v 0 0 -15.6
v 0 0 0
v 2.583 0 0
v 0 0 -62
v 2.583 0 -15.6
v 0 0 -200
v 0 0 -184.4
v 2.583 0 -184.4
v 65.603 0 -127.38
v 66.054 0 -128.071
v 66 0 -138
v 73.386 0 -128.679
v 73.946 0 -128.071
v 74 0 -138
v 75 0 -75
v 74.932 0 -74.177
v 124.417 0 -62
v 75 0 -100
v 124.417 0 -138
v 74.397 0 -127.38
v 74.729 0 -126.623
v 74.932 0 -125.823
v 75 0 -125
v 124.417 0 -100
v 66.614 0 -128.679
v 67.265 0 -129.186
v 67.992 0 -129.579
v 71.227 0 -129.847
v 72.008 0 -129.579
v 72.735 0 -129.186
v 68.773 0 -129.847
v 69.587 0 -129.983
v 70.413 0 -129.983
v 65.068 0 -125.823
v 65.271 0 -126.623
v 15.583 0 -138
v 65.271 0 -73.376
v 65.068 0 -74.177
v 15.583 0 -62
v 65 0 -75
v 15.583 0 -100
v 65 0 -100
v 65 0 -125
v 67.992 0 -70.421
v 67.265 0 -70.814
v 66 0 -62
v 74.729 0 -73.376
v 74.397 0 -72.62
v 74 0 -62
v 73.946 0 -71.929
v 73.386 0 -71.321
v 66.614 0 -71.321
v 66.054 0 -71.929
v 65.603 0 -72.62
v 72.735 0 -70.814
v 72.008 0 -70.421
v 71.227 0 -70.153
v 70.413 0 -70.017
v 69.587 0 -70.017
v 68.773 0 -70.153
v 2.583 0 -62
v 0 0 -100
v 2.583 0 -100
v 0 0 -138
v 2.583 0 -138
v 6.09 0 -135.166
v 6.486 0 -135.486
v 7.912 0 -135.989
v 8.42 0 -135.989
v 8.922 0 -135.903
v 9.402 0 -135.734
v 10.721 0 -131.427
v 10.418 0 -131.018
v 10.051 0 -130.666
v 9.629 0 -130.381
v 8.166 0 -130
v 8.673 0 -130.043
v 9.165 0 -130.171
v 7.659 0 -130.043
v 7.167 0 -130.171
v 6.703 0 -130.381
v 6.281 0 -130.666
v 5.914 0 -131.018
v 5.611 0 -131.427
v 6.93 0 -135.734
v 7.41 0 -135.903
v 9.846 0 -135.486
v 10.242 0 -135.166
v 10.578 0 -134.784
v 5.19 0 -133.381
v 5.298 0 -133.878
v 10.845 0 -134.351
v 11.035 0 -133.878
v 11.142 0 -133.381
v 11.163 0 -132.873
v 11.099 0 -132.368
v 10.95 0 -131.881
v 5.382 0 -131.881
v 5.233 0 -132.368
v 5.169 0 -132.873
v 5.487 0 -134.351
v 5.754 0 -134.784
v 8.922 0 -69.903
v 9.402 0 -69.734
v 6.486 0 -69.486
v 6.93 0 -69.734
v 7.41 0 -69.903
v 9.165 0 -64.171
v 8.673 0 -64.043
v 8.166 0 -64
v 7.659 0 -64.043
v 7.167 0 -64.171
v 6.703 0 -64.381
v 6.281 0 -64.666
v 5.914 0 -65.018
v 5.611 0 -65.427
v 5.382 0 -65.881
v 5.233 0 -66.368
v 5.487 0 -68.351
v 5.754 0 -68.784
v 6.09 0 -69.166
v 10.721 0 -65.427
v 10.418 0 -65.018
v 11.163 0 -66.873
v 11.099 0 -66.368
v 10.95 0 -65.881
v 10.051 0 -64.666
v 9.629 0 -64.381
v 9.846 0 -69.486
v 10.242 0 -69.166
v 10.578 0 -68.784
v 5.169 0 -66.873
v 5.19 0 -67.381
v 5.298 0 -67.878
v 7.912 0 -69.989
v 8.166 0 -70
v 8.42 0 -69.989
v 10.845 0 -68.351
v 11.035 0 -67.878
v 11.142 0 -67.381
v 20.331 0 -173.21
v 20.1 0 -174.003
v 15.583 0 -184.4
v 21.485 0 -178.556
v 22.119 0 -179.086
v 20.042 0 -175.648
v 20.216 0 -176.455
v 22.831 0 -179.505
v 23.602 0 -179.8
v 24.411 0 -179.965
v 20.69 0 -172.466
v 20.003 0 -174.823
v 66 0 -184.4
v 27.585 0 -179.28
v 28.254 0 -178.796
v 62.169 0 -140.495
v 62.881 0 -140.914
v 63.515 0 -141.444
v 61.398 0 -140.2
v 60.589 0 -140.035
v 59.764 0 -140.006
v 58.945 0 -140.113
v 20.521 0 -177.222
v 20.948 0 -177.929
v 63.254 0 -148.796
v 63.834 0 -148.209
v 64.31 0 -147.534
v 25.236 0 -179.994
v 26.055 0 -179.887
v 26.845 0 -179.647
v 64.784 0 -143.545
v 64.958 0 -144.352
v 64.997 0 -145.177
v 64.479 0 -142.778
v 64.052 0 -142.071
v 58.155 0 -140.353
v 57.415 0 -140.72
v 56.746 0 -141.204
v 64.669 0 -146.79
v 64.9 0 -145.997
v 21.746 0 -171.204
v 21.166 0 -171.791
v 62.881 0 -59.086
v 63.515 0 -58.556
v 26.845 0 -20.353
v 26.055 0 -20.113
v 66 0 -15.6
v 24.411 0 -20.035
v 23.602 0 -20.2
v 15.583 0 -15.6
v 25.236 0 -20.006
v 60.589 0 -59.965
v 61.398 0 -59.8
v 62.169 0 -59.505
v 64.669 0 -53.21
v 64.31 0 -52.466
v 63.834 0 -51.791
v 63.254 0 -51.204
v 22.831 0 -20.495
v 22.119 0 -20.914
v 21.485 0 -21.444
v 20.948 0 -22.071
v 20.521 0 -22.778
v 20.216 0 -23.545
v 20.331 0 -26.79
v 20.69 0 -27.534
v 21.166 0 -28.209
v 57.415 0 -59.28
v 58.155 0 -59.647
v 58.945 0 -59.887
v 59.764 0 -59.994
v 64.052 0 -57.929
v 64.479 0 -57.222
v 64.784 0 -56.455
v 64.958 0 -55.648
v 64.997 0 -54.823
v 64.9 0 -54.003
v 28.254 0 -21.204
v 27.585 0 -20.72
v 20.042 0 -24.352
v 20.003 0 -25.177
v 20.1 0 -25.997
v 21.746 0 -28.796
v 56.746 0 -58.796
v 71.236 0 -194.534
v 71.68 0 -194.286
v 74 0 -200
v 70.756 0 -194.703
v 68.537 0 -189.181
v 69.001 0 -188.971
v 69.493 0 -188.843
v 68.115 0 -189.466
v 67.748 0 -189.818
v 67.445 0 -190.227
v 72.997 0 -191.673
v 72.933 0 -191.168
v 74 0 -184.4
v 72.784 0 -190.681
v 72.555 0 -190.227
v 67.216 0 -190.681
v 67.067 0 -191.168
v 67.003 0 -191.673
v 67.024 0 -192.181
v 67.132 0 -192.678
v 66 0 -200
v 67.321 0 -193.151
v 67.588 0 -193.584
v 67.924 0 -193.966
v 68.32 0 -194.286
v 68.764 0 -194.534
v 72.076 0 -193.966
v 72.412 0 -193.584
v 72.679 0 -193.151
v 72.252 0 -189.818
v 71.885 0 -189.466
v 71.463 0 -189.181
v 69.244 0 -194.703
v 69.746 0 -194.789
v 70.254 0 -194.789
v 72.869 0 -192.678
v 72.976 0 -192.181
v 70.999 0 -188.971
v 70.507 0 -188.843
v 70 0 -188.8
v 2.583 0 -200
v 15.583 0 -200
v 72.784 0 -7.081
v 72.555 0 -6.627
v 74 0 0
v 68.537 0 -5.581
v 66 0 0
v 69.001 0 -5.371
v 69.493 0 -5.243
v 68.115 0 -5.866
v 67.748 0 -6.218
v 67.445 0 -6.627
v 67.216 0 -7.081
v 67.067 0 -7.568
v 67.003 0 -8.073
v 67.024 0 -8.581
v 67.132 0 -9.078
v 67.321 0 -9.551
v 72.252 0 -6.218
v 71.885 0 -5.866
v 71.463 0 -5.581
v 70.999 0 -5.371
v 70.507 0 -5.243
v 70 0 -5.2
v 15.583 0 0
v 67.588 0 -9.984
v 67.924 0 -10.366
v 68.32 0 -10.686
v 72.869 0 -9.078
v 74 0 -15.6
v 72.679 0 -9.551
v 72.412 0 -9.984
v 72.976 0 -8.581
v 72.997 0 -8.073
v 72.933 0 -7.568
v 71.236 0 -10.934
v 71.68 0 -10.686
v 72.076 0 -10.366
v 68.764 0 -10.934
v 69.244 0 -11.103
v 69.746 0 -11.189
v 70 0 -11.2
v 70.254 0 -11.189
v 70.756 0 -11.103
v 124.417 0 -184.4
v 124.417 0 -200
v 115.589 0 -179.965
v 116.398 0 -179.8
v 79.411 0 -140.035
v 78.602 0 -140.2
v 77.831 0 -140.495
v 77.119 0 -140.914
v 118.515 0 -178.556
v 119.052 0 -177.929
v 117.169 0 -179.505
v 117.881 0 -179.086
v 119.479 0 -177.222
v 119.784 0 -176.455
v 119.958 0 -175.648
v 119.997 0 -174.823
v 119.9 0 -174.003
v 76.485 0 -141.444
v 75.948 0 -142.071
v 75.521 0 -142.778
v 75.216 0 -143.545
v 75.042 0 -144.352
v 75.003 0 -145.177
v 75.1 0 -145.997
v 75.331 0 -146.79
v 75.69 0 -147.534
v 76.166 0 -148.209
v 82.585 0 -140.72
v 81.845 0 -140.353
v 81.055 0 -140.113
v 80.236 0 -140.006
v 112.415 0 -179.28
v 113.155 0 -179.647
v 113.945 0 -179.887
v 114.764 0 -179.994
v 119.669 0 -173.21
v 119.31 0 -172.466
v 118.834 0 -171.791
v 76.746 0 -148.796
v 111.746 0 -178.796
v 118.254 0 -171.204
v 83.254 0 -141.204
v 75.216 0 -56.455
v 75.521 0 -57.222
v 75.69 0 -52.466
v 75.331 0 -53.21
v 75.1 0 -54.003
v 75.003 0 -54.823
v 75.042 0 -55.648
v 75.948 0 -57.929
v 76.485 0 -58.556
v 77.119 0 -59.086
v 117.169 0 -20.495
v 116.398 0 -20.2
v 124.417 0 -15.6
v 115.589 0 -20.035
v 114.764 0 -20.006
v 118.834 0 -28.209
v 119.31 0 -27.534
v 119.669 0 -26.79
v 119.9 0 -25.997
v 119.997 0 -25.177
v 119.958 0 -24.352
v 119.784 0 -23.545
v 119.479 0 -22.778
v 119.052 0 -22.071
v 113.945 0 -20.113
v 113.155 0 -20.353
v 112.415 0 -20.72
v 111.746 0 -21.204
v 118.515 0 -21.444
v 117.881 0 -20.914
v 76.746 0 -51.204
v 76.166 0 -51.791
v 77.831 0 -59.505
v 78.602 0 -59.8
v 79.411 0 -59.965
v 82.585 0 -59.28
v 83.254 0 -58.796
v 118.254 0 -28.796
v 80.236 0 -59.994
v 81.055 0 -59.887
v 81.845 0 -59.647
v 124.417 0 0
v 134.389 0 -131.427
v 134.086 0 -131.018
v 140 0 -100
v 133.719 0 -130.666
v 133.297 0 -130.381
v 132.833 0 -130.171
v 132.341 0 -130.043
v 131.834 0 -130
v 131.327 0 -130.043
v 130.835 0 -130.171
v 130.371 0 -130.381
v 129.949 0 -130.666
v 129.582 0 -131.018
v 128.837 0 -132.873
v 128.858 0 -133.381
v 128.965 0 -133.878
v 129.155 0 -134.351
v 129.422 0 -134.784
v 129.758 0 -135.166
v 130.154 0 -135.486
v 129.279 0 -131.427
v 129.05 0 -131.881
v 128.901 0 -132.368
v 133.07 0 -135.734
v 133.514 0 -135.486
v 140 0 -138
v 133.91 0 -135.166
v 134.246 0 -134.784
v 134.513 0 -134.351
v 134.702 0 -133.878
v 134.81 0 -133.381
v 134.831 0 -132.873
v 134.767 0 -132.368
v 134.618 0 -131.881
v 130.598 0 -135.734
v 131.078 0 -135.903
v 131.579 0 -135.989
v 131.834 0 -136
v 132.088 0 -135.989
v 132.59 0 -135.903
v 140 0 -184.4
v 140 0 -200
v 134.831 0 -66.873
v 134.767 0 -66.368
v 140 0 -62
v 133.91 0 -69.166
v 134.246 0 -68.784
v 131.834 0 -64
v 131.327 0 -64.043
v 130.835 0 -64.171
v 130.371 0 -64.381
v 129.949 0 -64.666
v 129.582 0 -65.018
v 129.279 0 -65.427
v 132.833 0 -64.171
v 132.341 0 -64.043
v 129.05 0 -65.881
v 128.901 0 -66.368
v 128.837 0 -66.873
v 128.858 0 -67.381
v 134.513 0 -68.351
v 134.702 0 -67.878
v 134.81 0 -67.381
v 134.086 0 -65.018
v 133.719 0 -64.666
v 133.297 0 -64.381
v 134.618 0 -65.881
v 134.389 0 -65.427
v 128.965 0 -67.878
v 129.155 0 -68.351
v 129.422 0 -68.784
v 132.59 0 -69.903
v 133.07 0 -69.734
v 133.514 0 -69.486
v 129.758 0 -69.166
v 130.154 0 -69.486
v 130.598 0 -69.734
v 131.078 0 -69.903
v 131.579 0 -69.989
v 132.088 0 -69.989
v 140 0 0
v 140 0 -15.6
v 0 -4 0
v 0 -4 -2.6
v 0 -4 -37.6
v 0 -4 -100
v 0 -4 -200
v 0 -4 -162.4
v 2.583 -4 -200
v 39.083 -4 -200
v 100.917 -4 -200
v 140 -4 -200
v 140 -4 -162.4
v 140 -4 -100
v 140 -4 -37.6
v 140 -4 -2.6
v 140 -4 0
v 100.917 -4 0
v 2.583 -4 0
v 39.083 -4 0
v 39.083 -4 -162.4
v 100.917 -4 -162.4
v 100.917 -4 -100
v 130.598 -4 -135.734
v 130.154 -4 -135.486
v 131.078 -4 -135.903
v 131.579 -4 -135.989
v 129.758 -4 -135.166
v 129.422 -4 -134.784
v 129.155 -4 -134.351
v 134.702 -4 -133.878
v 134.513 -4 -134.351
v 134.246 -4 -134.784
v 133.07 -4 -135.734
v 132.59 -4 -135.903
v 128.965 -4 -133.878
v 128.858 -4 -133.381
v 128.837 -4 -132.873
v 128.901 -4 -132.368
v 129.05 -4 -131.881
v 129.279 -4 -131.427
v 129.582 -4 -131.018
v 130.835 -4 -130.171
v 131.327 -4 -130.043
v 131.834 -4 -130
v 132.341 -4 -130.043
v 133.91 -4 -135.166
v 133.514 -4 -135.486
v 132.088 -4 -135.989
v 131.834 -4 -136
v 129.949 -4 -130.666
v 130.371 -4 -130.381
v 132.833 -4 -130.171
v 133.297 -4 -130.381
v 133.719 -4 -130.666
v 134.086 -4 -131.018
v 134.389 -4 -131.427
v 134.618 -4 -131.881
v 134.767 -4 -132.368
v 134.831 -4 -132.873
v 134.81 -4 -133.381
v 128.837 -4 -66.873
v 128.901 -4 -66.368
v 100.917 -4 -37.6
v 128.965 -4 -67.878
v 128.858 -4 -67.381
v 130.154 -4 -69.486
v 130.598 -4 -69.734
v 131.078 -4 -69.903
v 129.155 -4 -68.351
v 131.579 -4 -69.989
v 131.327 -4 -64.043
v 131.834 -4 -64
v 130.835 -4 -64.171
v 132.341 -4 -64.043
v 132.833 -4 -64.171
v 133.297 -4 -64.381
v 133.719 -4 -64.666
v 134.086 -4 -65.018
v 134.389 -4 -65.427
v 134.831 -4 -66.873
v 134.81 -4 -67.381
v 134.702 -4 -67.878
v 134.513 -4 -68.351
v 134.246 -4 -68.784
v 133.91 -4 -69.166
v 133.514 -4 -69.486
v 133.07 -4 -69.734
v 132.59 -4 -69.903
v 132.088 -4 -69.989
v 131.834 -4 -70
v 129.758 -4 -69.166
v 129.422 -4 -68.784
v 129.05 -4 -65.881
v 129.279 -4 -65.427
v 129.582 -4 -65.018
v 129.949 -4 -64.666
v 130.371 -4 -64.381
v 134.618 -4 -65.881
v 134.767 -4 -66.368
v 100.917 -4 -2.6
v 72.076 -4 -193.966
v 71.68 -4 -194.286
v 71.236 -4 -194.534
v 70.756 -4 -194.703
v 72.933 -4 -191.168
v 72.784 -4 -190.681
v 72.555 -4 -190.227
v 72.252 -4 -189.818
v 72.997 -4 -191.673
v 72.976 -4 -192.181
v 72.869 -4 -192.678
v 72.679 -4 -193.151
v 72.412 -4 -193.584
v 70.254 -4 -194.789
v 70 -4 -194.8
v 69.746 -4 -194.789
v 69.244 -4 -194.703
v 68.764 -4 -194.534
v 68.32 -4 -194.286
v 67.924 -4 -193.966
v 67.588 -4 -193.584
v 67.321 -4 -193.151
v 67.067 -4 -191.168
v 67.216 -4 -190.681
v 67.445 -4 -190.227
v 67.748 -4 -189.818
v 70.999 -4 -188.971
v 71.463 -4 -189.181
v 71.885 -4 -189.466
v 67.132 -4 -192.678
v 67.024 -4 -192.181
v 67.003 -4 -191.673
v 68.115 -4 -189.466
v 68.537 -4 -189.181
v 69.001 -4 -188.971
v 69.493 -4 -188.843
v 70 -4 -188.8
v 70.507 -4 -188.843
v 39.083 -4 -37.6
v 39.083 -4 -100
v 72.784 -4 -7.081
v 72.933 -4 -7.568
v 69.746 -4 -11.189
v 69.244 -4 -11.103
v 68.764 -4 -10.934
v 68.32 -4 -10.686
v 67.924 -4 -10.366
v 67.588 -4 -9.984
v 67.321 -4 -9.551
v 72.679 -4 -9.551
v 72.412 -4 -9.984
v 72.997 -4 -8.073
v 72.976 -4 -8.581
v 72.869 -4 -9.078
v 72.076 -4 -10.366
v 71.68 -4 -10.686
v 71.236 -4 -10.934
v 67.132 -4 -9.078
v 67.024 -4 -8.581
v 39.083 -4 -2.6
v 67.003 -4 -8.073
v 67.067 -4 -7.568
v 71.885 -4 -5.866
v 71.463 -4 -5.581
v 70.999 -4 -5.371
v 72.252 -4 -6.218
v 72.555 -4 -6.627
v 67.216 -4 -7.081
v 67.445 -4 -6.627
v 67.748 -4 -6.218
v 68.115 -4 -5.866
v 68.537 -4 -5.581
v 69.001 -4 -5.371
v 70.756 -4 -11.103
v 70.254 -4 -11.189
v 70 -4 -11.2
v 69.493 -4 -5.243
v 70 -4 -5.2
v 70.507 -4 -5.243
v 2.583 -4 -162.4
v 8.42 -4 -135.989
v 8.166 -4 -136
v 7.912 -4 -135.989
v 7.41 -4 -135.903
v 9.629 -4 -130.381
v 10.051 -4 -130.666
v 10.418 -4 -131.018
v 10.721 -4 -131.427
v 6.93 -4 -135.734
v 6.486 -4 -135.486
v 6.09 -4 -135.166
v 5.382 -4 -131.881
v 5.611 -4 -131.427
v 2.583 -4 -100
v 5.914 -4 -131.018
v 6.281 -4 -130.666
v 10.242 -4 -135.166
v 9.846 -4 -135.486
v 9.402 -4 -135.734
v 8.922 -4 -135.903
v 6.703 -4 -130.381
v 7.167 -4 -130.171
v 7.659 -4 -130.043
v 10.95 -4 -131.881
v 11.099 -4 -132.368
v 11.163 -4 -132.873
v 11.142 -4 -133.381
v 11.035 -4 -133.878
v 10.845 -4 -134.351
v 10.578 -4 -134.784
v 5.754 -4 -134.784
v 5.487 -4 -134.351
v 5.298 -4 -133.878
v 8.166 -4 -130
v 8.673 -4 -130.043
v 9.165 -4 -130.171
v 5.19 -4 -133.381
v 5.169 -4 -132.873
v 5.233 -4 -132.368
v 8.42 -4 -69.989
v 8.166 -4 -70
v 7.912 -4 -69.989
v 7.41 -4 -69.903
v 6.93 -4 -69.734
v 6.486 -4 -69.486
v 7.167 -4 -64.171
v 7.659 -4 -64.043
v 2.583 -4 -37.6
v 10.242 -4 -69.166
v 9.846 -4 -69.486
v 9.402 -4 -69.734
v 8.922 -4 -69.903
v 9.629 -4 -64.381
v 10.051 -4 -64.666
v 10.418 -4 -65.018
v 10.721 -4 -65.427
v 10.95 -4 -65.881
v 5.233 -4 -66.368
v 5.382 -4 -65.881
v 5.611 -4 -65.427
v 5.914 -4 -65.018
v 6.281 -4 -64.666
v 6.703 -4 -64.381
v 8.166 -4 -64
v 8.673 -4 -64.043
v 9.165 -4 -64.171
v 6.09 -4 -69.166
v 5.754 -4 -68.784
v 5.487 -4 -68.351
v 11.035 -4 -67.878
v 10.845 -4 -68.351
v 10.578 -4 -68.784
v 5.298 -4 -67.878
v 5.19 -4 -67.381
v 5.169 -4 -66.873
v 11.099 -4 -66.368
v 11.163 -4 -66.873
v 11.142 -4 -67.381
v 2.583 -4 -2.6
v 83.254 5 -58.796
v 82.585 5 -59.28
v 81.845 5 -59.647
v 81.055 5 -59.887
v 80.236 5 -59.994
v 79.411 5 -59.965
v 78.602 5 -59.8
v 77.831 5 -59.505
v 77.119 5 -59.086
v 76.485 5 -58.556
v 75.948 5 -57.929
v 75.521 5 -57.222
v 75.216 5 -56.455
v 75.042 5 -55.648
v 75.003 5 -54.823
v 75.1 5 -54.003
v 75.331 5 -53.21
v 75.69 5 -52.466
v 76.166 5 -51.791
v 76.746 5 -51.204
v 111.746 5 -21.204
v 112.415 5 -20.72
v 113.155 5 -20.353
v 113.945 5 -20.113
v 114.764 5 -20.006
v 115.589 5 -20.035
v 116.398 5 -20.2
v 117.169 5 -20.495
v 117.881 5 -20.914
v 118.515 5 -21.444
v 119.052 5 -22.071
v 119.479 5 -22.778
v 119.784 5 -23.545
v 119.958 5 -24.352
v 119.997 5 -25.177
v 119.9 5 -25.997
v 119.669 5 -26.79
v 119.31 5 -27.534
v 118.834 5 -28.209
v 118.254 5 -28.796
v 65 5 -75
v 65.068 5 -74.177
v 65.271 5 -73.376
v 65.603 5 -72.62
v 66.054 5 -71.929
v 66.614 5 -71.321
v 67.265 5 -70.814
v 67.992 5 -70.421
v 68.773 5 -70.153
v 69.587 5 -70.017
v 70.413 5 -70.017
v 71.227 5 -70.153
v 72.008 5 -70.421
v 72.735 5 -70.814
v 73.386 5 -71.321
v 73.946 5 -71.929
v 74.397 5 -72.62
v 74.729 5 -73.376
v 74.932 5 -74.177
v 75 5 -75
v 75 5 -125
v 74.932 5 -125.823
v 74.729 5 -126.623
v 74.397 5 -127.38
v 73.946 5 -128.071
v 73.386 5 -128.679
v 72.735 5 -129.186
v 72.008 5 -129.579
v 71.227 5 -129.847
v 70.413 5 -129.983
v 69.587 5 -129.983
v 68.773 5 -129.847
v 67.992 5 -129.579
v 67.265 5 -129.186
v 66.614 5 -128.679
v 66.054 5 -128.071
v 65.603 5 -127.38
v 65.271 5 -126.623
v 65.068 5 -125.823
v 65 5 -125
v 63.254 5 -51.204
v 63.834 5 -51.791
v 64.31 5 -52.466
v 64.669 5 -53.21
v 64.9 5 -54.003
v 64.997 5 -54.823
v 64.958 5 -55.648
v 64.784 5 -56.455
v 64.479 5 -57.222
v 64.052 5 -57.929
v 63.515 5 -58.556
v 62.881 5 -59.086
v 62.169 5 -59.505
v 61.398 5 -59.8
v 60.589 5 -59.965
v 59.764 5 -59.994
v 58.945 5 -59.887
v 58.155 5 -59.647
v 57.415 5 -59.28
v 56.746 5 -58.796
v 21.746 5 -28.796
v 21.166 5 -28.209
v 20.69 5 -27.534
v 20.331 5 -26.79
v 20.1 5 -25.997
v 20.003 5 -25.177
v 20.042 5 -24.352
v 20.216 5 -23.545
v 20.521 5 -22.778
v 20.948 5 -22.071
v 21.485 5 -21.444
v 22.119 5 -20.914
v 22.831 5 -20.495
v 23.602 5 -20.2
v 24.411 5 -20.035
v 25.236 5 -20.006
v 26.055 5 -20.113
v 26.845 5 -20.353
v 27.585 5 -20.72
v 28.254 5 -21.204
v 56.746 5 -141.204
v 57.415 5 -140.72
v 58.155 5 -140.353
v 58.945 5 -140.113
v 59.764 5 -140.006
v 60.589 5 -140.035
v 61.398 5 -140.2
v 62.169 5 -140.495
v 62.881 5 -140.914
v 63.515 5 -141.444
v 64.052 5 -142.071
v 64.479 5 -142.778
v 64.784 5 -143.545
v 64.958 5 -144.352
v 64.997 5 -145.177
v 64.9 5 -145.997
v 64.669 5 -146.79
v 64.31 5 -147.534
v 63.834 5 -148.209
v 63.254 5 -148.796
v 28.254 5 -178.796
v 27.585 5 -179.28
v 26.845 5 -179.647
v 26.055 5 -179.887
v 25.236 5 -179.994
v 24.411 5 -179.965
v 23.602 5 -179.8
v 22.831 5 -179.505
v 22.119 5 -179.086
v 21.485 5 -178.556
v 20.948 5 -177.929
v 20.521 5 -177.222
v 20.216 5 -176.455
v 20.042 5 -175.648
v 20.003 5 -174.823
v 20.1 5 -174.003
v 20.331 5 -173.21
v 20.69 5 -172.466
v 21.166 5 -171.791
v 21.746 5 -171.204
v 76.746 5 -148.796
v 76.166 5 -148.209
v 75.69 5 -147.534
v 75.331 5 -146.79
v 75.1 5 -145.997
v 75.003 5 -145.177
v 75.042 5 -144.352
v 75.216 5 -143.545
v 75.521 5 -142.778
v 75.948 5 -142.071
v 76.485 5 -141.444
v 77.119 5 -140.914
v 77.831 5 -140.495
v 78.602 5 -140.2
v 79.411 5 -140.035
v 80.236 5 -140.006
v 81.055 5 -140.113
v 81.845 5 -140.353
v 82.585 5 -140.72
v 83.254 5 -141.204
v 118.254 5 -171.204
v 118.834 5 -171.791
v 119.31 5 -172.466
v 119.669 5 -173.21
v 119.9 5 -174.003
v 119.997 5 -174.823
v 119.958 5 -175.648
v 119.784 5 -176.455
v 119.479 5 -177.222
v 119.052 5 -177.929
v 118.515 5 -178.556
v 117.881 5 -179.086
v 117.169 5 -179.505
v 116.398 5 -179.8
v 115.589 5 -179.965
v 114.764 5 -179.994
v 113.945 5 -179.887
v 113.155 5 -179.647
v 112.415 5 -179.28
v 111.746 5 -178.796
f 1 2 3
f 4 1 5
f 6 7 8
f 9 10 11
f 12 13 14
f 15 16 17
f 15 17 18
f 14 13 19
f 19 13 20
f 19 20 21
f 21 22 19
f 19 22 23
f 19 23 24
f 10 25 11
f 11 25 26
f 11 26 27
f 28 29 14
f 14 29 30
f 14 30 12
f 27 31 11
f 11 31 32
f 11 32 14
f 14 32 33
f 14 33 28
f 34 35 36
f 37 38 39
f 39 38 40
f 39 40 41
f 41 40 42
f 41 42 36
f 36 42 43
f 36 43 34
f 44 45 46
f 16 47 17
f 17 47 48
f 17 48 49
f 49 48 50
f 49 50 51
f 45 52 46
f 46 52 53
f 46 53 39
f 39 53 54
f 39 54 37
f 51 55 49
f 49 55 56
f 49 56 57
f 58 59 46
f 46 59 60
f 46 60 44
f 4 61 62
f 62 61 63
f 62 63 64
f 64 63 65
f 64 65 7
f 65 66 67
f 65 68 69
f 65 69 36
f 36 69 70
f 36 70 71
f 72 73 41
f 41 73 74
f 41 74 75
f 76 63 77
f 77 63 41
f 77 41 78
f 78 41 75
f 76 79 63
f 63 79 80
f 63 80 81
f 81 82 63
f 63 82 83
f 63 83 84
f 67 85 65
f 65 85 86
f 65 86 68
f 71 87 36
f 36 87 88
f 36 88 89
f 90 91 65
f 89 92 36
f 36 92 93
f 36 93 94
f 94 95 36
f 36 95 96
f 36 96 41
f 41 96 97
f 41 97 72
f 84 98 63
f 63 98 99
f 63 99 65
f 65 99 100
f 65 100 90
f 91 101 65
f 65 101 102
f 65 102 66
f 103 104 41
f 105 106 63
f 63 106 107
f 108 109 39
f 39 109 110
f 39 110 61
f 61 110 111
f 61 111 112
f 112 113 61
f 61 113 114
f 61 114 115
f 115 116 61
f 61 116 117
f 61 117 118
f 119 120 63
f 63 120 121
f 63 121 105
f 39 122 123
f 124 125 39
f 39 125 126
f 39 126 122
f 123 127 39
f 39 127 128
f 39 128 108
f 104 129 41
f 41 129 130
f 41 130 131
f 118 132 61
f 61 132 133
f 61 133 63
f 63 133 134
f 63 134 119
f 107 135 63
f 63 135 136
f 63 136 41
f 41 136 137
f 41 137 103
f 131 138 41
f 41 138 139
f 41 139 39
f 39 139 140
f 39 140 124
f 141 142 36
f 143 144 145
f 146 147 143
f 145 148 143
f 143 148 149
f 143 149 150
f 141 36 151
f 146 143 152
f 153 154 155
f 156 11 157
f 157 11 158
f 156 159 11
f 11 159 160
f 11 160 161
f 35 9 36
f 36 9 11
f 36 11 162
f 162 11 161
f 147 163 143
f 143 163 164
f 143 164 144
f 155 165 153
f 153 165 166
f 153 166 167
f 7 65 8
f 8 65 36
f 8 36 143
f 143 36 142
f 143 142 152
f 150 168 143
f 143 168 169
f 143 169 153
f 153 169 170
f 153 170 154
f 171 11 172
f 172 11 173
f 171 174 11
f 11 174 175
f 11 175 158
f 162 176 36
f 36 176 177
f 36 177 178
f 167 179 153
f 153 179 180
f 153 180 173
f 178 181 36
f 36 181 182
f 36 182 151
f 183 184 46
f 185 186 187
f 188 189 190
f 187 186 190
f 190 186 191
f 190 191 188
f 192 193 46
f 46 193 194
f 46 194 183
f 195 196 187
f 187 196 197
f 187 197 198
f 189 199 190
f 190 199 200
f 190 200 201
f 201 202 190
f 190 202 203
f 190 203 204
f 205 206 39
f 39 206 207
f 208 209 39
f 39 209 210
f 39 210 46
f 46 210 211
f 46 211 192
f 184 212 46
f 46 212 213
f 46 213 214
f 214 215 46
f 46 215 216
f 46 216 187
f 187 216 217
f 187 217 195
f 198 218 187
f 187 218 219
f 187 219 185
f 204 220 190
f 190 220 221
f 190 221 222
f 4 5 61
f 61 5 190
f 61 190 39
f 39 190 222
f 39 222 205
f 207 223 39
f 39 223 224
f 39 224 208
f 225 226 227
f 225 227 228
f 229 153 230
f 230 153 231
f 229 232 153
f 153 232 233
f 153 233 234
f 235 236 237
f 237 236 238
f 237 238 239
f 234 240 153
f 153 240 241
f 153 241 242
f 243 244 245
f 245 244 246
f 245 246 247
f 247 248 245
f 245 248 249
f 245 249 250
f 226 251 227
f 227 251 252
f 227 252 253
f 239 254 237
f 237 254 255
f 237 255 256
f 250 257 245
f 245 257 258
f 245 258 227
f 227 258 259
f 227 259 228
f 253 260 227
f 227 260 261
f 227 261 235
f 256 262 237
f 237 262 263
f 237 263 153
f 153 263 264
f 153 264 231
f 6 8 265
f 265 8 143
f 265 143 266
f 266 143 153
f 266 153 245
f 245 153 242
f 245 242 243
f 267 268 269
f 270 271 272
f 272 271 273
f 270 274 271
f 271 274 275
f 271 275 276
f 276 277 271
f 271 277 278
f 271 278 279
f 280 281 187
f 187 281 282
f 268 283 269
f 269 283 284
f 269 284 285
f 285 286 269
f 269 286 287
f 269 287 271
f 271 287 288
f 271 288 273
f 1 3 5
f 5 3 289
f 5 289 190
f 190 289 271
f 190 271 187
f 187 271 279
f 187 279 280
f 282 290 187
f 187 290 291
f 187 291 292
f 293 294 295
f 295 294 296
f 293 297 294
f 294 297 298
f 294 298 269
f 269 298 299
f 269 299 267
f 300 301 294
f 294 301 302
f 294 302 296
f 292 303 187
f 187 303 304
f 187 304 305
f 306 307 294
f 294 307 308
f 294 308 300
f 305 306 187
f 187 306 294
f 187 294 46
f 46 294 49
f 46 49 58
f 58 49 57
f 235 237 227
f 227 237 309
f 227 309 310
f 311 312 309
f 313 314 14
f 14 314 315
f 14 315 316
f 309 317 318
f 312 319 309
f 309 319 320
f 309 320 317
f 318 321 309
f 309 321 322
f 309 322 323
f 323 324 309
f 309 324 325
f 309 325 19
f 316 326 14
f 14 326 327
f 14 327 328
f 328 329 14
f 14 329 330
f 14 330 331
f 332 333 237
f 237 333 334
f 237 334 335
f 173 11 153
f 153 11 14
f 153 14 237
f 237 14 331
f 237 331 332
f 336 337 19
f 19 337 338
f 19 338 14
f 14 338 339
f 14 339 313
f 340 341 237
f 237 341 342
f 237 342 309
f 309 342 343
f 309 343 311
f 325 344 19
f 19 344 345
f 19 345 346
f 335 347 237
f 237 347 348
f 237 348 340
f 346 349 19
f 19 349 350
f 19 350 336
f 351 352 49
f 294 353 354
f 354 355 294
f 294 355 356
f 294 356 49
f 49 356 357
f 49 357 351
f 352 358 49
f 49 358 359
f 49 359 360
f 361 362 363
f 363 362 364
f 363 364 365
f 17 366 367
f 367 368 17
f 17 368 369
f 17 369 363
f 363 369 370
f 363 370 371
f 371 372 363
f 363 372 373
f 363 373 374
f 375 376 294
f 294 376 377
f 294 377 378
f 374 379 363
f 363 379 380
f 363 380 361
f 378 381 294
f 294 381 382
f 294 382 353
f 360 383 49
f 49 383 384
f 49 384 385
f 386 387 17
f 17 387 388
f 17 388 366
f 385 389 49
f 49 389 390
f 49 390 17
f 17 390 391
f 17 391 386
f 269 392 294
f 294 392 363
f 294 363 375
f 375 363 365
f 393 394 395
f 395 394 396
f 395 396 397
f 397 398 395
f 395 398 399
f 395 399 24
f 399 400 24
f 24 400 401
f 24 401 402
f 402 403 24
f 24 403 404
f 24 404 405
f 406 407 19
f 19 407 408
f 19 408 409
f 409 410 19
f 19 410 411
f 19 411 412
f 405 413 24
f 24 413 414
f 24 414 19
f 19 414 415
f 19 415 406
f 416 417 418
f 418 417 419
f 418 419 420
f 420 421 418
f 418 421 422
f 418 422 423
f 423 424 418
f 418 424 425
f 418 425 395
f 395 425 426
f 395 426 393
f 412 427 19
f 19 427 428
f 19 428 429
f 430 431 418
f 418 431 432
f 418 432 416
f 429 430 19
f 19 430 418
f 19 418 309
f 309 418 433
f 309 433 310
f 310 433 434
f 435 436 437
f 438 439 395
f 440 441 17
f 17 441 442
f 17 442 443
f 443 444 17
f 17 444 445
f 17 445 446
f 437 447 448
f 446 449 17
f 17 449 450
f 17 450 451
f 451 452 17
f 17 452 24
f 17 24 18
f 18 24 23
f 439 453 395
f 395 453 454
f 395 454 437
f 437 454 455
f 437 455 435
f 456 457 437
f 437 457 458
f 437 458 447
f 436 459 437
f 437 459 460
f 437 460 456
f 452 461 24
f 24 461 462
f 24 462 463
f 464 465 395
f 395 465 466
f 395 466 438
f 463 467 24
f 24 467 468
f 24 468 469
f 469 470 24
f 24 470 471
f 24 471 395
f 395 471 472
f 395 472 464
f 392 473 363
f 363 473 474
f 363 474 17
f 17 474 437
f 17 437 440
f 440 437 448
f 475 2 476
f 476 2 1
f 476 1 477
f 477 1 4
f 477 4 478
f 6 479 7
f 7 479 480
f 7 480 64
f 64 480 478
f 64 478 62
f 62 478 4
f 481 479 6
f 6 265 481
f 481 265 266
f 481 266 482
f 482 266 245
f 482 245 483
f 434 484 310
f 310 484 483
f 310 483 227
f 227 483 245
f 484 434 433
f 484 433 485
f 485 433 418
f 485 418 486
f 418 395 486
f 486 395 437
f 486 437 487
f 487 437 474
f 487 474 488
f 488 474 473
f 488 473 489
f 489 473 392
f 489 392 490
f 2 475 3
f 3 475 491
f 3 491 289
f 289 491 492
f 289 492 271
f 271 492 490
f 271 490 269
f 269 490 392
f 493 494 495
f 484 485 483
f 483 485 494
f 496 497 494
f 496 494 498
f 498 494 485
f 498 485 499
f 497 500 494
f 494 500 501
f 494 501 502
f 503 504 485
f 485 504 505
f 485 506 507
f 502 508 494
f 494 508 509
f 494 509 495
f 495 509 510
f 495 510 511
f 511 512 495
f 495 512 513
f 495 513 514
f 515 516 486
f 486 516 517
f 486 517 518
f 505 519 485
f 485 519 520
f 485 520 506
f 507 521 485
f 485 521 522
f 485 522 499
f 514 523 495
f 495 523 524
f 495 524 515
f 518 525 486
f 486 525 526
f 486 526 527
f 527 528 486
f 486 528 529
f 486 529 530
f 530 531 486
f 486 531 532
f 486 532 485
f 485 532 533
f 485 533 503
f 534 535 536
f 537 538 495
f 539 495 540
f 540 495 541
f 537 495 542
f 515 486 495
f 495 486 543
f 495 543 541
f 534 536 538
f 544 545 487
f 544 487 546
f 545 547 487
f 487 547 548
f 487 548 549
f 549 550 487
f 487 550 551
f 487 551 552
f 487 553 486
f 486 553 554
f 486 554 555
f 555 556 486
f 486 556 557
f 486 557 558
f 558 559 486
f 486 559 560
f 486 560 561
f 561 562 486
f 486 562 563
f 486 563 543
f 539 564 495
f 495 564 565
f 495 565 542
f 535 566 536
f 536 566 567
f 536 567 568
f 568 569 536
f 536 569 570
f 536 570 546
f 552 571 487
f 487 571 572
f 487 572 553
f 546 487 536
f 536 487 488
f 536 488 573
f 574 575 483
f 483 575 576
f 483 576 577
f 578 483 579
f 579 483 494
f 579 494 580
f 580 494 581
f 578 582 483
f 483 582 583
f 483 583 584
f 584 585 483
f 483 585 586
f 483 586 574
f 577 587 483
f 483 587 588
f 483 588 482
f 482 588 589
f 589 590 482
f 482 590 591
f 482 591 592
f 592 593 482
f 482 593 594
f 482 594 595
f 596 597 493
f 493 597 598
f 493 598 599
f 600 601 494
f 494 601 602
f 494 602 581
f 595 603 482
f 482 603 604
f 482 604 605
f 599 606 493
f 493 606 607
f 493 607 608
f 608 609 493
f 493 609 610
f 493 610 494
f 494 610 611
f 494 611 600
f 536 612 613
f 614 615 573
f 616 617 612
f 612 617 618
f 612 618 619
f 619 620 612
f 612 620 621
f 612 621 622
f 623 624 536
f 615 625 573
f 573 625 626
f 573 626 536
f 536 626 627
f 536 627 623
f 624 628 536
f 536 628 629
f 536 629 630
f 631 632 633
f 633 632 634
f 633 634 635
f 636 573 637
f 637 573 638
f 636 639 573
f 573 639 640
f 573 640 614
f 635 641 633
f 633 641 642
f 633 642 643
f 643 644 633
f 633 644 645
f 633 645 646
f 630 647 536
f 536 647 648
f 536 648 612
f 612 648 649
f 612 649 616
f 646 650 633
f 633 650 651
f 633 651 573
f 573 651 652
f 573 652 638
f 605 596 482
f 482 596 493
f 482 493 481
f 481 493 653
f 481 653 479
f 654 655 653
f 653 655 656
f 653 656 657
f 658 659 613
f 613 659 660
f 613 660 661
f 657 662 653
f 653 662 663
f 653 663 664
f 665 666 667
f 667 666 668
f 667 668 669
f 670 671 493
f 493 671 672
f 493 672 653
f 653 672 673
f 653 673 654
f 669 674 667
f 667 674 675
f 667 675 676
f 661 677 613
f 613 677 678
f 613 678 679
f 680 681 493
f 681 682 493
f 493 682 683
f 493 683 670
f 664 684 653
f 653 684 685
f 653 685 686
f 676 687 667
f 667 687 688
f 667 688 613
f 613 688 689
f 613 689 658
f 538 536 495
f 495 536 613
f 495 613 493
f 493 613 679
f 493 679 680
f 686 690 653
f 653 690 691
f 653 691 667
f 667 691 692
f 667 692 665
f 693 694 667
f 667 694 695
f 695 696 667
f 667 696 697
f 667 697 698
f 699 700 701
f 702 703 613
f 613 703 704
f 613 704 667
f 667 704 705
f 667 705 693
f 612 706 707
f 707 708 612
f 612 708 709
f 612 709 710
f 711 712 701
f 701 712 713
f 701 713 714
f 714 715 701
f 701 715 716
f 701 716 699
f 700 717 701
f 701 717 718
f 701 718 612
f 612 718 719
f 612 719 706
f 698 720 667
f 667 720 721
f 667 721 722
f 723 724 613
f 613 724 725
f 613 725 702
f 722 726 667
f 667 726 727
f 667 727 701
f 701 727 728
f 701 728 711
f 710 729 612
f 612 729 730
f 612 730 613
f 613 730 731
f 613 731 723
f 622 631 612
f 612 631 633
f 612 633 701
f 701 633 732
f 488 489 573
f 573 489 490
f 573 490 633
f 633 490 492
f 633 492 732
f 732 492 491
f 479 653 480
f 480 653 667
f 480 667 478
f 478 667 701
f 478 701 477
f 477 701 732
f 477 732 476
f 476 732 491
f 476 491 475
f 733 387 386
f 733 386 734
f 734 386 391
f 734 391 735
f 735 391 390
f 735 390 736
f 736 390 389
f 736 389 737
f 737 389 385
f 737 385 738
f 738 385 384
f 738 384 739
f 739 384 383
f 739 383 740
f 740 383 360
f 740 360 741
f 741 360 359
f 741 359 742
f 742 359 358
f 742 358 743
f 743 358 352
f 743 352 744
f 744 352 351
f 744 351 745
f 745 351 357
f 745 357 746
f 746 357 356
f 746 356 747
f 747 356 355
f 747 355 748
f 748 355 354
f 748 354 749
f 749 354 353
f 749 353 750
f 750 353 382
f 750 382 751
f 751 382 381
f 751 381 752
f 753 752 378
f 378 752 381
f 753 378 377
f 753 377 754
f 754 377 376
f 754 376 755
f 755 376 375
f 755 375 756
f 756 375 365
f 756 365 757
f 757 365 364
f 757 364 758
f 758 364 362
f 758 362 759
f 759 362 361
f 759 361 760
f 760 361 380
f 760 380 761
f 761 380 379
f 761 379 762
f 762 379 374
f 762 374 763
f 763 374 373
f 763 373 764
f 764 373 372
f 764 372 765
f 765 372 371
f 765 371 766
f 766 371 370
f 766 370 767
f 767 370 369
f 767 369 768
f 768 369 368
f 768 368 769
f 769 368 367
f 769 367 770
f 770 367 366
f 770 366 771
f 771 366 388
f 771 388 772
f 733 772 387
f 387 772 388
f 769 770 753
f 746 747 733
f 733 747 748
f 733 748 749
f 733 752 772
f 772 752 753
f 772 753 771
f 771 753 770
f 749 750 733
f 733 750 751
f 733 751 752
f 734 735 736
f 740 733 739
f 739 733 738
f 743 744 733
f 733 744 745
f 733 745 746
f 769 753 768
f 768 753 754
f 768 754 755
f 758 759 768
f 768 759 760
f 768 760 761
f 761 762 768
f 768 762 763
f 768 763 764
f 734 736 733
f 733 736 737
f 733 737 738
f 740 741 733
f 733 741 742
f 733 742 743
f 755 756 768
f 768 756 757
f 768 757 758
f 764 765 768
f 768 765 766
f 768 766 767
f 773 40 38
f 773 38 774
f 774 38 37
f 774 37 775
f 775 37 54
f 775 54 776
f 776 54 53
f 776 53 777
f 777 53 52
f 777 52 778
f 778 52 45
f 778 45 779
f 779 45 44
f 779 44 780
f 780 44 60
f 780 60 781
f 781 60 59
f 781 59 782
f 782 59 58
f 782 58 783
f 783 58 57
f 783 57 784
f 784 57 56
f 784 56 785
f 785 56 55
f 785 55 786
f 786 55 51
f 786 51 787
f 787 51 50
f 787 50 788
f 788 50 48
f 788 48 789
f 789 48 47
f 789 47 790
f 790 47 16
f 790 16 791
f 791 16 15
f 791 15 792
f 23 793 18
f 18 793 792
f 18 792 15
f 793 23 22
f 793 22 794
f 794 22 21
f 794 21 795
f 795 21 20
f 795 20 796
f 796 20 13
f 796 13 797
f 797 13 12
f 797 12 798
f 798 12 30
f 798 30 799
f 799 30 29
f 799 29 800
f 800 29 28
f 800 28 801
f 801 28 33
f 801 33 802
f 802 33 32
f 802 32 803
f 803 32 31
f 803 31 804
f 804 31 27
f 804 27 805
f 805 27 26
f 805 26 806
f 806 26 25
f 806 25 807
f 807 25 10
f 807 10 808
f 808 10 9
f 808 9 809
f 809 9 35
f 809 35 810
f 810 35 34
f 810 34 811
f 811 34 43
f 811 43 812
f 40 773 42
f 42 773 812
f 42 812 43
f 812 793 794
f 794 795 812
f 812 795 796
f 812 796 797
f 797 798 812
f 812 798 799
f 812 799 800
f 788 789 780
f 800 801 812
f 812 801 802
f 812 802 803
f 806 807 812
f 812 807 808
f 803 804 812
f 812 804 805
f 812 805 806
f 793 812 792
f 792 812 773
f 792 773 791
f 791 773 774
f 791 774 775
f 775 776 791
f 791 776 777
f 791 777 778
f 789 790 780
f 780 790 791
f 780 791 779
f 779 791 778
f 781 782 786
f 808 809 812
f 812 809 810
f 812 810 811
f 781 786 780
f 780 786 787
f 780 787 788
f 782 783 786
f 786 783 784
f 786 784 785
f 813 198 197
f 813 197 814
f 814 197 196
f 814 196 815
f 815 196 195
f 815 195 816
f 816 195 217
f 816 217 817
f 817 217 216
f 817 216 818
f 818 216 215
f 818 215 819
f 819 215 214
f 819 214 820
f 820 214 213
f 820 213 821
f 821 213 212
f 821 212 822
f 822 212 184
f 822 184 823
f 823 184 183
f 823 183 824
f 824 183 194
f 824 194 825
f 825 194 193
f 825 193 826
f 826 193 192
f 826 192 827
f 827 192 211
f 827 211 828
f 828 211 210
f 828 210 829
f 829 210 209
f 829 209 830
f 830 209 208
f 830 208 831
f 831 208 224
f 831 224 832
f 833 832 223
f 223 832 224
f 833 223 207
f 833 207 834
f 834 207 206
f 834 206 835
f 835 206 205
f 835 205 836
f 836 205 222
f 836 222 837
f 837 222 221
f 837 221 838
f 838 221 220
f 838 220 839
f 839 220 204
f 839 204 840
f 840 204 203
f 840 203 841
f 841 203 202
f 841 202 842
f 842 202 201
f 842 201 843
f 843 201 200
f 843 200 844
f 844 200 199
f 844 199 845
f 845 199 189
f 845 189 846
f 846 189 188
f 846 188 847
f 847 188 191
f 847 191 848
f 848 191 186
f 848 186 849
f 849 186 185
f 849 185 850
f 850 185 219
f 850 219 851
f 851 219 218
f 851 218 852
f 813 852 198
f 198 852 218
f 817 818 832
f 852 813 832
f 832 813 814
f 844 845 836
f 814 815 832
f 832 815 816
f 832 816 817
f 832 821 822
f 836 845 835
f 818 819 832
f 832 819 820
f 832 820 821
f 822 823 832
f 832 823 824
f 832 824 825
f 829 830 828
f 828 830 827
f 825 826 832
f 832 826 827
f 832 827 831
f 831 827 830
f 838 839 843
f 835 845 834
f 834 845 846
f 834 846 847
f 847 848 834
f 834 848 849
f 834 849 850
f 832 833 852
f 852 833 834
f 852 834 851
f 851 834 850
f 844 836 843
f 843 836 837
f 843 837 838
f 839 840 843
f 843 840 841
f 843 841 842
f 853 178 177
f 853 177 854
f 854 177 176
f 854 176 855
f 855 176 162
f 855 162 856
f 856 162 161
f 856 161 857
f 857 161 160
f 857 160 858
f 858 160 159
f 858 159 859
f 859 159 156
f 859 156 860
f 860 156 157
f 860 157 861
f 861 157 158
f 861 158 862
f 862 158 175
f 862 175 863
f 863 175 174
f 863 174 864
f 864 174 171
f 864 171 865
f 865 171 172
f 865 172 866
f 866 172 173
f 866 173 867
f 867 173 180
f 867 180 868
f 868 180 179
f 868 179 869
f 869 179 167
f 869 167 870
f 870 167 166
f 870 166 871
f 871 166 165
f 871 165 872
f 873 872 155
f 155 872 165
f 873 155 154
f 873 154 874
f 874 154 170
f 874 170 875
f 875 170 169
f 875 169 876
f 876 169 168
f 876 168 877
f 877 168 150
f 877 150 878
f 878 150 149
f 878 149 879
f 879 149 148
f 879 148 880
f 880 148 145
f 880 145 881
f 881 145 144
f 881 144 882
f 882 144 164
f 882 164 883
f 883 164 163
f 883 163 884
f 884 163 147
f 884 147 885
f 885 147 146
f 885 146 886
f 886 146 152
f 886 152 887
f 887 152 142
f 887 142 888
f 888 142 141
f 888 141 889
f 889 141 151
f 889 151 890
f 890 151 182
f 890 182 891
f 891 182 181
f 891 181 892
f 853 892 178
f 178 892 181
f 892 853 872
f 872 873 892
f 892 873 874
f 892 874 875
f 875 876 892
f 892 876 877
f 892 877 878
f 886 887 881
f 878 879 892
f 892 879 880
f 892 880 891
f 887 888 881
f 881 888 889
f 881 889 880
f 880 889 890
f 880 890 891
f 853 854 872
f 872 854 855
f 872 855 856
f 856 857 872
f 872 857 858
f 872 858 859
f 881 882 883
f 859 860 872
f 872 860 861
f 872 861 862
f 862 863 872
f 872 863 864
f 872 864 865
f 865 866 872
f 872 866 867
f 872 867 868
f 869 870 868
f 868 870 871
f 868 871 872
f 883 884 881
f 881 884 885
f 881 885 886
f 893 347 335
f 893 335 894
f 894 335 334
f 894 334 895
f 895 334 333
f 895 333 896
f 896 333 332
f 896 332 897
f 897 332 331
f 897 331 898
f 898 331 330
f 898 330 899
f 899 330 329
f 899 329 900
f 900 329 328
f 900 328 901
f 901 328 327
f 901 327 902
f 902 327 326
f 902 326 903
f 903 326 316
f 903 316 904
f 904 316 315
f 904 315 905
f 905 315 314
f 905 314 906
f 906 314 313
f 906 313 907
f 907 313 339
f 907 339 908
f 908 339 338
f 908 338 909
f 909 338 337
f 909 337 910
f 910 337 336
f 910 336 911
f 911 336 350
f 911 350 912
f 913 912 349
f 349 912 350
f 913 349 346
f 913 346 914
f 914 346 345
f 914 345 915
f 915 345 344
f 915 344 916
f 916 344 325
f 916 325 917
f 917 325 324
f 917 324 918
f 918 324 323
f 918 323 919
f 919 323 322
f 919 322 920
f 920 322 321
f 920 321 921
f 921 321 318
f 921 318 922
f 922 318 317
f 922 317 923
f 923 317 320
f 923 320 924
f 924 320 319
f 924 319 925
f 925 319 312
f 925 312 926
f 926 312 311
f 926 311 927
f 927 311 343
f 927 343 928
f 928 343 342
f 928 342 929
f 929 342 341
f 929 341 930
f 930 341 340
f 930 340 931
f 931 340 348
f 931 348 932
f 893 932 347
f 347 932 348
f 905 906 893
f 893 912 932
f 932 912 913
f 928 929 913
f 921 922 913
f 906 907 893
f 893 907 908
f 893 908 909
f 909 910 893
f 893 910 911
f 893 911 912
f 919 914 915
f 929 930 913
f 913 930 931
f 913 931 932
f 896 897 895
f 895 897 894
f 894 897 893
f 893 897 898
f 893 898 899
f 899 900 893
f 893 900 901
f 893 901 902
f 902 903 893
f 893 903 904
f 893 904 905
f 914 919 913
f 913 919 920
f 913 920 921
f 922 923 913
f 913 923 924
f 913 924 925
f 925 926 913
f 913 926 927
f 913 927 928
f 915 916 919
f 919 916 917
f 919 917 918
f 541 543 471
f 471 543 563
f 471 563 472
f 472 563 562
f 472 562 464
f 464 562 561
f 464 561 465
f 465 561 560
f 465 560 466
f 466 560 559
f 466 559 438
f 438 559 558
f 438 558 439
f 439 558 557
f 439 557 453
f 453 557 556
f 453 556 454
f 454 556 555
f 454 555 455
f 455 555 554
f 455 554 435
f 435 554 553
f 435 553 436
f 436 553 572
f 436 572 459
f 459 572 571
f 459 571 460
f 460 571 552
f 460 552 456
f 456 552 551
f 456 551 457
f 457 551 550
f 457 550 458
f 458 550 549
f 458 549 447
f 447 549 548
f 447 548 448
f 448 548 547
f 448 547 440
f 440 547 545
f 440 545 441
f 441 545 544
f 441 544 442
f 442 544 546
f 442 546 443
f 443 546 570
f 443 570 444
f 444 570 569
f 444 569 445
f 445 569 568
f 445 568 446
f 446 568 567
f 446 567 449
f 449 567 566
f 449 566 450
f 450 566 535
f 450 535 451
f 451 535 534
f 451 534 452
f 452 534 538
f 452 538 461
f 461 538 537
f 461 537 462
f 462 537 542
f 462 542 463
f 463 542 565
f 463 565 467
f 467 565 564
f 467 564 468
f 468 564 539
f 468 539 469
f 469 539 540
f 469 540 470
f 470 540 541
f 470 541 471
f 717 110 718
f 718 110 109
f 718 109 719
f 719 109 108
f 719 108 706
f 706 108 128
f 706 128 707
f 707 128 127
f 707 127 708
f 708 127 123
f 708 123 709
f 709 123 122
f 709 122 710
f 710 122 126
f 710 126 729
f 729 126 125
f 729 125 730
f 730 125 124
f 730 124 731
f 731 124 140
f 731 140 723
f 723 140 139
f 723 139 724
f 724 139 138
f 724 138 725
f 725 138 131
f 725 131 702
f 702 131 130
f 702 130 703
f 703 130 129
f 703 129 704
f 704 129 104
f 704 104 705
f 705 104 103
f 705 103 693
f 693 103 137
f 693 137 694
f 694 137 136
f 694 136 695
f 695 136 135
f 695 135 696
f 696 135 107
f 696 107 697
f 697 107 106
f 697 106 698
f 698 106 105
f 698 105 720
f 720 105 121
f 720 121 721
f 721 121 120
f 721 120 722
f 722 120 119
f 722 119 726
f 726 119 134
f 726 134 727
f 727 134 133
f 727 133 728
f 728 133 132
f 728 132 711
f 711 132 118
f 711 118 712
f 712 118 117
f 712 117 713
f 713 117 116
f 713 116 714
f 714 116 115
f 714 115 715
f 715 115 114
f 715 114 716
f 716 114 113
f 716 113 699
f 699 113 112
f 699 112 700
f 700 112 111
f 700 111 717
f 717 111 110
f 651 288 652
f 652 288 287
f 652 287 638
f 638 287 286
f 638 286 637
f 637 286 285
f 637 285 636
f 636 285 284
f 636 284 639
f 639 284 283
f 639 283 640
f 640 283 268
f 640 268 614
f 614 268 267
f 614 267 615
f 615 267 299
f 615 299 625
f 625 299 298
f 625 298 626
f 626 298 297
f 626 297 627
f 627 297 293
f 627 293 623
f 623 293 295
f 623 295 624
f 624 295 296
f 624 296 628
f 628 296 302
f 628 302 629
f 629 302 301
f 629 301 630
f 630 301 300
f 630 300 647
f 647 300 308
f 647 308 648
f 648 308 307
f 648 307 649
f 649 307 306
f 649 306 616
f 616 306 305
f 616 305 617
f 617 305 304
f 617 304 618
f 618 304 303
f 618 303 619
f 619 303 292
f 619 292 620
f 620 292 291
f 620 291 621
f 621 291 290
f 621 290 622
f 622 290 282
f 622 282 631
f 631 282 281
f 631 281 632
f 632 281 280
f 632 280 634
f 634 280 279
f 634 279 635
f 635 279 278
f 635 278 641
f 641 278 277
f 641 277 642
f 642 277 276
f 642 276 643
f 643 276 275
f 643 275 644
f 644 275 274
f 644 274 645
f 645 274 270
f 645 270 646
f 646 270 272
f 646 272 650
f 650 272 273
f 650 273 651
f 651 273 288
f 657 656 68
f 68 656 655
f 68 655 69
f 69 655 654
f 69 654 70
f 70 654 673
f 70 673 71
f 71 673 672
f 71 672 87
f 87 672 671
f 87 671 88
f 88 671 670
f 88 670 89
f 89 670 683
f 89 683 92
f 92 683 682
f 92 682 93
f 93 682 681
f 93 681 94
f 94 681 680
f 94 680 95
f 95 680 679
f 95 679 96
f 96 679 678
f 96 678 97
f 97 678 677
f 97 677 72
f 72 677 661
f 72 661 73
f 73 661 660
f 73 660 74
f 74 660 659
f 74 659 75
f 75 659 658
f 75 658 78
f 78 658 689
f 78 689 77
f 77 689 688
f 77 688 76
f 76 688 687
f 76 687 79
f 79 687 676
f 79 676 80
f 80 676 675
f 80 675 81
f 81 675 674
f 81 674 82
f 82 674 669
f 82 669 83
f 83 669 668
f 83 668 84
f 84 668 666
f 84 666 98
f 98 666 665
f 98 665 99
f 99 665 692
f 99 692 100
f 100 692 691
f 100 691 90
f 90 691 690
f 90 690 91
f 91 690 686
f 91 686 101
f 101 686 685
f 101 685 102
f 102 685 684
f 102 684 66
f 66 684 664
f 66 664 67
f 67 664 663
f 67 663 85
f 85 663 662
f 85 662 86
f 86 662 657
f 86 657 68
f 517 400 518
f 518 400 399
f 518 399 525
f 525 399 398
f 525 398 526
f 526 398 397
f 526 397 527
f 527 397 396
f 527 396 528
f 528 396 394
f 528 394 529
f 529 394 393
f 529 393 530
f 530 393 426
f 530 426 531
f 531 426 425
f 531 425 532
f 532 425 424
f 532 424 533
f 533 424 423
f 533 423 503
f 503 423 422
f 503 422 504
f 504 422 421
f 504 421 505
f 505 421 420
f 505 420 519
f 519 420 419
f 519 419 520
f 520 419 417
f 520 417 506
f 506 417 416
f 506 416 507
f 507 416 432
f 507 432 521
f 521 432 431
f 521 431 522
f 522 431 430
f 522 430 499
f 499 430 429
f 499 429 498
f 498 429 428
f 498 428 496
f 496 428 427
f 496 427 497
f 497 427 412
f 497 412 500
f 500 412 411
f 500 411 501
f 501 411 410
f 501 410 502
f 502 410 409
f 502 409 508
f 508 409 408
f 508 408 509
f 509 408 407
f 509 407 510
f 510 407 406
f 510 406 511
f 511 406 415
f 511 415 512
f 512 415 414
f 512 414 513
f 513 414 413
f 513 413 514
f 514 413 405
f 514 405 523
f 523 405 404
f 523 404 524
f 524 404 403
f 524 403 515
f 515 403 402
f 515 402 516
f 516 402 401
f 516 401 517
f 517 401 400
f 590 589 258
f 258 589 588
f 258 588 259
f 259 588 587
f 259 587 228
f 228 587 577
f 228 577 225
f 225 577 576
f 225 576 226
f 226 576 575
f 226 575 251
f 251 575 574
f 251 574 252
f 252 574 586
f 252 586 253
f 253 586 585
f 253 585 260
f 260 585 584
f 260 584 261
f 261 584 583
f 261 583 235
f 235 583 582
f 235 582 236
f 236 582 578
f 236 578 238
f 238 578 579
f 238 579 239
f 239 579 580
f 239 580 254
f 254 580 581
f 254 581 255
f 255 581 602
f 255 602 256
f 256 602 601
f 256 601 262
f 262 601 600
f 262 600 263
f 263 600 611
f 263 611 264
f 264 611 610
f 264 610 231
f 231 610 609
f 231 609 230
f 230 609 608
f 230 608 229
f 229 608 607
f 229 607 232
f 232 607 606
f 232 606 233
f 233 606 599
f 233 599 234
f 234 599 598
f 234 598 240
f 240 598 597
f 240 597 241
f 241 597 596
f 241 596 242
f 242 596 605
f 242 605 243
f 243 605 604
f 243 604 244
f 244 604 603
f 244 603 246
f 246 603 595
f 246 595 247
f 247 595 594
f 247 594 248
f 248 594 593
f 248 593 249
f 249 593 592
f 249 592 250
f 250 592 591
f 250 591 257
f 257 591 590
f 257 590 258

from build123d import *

# Parameters (mm, degrees)
SKETCH2_W           = 140
SKETCH2_H           = 200
BOSS_EXTRUDE1_DEPTH = 4
BOSS_EXTRUDE2_DEPTH = 5
SKETCH4_R           = 3
CUT_EXTRUDE1_DEPTH  = 10


with BuildPart() as part:
    # Sketch2 → Boss-Extrude1 (new body)
    with BuildSketch(Plane(origin=(0, 0, 0), x_dir=(1, 0, 0), z_dir=(0, 1, 0))):
        with Locations((70, 100)):
            Rectangle(SKETCH2_W, SKETCH2_H)
    extrude(amount=-BOSS_EXTRUDE1_DEPTH)

    # Sketch1 → Boss-Extrude2 (add)
    with BuildSketch(Plane(origin=(0, 0, 0), x_dir=(1, 0, 0), z_dir=(0, 1, 0))):
        with BuildLine():
            Line((83.253956867, 58.796283012), (118.253956867, 28.796283012))
            ThreePointArc((118.253956867, 28.796283012), (118.796283012, 21.746043133), (111.746043133, 21.203716988))
            Line((111.746043133, 21.203716988), (76.746043133, 51.203716988))
            ThreePointArc((76.746043133, 51.203716988), (76.203716988, 58.253956867), (83.253956867, 58.796283012))
        make_face()
        with BuildLine():
            Line((65, 75), (65, 125))
            ThreePointArc((65, 125), (70, 130), (75, 125))
            Line((75, 125), (75, 75))
            ThreePointArc((75, 75), (70, 70), (65, 75))
        make_face()
        with BuildLine():
            Line((56.746043133, 58.796283012), (21.746043133, 28.796283012))
            ThreePointArc((21.746043133, 28.796283012), (21.203716988, 21.746043133), (28.253956867, 21.203716988))
            Line((28.253956867, 21.203716988), (63.253956867, 51.203716988))
            ThreePointArc((63.253956867, 51.203716988), (63.796283012, 58.253956867), (56.746043133, 58.796283012))
        make_face()
        with BuildLine():
            Line((56.746043133, 141.203716988), (21.746043133, 171.203716988))
            ThreePointArc((21.746043133, 171.203716988), (21.203716988, 178.253956867), (28.253956867, 178.796283012))
            Line((28.253956867, 178.796283012), (63.253956867, 148.796283012))
            ThreePointArc((63.253956867, 148.796283012), (63.796283012, 141.746043133), (56.746043133, 141.203716988))
        make_face()
        with BuildLine():
            Line((83.253956867, 141.203716988), (118.253956867, 171.203716988))
            ThreePointArc((118.253956867, 171.203716988), (118.796283012, 178.253956867), (111.746043133, 178.796283012))
            Line((111.746043133, 178.796283012), (76.746043133, 148.796283012))
            ThreePointArc((76.746043133, 148.796283012), (76.203716988, 141.746043133), (83.253956867, 141.203716988))
        make_face()
    extrude(amount=BOSS_EXTRUDE2_DEPTH)

    # Sketch4 → Cut-Extrude1 (cut)
    with BuildSketch(Plane(origin=(0, 0, 0), x_dir=(1, 0, 0), z_dir=(0, 1, 0))):
        with Locations(Location((70, 191.8, 0), (0, 0, 270))):
            Circle(SKETCH4_R)
        with Locations(Location((8.166074554, 133, 0), (0, 0, 270))):
            Circle(SKETCH4_R)
        with Locations(Location((70, 8.2, 0), (0, 0, 90))):
            Circle(SKETCH4_R)
        with Locations(Location((8.166074554, 67, 0), (0, 0, 90))):
            Circle(SKETCH4_R)
        with Locations(Location((131.833925446, 67, 0), (0, 0, 270))):
            Circle(SKETCH4_R)
        with Locations(Location((131.833925446, 133, 0), (0, 0, 90))):
            Circle(SKETCH4_R)
    extrude(amount=-CUT_EXTRUDE1_DEPTH, mode=Mode.SUBTRACT)


solid = part.part
